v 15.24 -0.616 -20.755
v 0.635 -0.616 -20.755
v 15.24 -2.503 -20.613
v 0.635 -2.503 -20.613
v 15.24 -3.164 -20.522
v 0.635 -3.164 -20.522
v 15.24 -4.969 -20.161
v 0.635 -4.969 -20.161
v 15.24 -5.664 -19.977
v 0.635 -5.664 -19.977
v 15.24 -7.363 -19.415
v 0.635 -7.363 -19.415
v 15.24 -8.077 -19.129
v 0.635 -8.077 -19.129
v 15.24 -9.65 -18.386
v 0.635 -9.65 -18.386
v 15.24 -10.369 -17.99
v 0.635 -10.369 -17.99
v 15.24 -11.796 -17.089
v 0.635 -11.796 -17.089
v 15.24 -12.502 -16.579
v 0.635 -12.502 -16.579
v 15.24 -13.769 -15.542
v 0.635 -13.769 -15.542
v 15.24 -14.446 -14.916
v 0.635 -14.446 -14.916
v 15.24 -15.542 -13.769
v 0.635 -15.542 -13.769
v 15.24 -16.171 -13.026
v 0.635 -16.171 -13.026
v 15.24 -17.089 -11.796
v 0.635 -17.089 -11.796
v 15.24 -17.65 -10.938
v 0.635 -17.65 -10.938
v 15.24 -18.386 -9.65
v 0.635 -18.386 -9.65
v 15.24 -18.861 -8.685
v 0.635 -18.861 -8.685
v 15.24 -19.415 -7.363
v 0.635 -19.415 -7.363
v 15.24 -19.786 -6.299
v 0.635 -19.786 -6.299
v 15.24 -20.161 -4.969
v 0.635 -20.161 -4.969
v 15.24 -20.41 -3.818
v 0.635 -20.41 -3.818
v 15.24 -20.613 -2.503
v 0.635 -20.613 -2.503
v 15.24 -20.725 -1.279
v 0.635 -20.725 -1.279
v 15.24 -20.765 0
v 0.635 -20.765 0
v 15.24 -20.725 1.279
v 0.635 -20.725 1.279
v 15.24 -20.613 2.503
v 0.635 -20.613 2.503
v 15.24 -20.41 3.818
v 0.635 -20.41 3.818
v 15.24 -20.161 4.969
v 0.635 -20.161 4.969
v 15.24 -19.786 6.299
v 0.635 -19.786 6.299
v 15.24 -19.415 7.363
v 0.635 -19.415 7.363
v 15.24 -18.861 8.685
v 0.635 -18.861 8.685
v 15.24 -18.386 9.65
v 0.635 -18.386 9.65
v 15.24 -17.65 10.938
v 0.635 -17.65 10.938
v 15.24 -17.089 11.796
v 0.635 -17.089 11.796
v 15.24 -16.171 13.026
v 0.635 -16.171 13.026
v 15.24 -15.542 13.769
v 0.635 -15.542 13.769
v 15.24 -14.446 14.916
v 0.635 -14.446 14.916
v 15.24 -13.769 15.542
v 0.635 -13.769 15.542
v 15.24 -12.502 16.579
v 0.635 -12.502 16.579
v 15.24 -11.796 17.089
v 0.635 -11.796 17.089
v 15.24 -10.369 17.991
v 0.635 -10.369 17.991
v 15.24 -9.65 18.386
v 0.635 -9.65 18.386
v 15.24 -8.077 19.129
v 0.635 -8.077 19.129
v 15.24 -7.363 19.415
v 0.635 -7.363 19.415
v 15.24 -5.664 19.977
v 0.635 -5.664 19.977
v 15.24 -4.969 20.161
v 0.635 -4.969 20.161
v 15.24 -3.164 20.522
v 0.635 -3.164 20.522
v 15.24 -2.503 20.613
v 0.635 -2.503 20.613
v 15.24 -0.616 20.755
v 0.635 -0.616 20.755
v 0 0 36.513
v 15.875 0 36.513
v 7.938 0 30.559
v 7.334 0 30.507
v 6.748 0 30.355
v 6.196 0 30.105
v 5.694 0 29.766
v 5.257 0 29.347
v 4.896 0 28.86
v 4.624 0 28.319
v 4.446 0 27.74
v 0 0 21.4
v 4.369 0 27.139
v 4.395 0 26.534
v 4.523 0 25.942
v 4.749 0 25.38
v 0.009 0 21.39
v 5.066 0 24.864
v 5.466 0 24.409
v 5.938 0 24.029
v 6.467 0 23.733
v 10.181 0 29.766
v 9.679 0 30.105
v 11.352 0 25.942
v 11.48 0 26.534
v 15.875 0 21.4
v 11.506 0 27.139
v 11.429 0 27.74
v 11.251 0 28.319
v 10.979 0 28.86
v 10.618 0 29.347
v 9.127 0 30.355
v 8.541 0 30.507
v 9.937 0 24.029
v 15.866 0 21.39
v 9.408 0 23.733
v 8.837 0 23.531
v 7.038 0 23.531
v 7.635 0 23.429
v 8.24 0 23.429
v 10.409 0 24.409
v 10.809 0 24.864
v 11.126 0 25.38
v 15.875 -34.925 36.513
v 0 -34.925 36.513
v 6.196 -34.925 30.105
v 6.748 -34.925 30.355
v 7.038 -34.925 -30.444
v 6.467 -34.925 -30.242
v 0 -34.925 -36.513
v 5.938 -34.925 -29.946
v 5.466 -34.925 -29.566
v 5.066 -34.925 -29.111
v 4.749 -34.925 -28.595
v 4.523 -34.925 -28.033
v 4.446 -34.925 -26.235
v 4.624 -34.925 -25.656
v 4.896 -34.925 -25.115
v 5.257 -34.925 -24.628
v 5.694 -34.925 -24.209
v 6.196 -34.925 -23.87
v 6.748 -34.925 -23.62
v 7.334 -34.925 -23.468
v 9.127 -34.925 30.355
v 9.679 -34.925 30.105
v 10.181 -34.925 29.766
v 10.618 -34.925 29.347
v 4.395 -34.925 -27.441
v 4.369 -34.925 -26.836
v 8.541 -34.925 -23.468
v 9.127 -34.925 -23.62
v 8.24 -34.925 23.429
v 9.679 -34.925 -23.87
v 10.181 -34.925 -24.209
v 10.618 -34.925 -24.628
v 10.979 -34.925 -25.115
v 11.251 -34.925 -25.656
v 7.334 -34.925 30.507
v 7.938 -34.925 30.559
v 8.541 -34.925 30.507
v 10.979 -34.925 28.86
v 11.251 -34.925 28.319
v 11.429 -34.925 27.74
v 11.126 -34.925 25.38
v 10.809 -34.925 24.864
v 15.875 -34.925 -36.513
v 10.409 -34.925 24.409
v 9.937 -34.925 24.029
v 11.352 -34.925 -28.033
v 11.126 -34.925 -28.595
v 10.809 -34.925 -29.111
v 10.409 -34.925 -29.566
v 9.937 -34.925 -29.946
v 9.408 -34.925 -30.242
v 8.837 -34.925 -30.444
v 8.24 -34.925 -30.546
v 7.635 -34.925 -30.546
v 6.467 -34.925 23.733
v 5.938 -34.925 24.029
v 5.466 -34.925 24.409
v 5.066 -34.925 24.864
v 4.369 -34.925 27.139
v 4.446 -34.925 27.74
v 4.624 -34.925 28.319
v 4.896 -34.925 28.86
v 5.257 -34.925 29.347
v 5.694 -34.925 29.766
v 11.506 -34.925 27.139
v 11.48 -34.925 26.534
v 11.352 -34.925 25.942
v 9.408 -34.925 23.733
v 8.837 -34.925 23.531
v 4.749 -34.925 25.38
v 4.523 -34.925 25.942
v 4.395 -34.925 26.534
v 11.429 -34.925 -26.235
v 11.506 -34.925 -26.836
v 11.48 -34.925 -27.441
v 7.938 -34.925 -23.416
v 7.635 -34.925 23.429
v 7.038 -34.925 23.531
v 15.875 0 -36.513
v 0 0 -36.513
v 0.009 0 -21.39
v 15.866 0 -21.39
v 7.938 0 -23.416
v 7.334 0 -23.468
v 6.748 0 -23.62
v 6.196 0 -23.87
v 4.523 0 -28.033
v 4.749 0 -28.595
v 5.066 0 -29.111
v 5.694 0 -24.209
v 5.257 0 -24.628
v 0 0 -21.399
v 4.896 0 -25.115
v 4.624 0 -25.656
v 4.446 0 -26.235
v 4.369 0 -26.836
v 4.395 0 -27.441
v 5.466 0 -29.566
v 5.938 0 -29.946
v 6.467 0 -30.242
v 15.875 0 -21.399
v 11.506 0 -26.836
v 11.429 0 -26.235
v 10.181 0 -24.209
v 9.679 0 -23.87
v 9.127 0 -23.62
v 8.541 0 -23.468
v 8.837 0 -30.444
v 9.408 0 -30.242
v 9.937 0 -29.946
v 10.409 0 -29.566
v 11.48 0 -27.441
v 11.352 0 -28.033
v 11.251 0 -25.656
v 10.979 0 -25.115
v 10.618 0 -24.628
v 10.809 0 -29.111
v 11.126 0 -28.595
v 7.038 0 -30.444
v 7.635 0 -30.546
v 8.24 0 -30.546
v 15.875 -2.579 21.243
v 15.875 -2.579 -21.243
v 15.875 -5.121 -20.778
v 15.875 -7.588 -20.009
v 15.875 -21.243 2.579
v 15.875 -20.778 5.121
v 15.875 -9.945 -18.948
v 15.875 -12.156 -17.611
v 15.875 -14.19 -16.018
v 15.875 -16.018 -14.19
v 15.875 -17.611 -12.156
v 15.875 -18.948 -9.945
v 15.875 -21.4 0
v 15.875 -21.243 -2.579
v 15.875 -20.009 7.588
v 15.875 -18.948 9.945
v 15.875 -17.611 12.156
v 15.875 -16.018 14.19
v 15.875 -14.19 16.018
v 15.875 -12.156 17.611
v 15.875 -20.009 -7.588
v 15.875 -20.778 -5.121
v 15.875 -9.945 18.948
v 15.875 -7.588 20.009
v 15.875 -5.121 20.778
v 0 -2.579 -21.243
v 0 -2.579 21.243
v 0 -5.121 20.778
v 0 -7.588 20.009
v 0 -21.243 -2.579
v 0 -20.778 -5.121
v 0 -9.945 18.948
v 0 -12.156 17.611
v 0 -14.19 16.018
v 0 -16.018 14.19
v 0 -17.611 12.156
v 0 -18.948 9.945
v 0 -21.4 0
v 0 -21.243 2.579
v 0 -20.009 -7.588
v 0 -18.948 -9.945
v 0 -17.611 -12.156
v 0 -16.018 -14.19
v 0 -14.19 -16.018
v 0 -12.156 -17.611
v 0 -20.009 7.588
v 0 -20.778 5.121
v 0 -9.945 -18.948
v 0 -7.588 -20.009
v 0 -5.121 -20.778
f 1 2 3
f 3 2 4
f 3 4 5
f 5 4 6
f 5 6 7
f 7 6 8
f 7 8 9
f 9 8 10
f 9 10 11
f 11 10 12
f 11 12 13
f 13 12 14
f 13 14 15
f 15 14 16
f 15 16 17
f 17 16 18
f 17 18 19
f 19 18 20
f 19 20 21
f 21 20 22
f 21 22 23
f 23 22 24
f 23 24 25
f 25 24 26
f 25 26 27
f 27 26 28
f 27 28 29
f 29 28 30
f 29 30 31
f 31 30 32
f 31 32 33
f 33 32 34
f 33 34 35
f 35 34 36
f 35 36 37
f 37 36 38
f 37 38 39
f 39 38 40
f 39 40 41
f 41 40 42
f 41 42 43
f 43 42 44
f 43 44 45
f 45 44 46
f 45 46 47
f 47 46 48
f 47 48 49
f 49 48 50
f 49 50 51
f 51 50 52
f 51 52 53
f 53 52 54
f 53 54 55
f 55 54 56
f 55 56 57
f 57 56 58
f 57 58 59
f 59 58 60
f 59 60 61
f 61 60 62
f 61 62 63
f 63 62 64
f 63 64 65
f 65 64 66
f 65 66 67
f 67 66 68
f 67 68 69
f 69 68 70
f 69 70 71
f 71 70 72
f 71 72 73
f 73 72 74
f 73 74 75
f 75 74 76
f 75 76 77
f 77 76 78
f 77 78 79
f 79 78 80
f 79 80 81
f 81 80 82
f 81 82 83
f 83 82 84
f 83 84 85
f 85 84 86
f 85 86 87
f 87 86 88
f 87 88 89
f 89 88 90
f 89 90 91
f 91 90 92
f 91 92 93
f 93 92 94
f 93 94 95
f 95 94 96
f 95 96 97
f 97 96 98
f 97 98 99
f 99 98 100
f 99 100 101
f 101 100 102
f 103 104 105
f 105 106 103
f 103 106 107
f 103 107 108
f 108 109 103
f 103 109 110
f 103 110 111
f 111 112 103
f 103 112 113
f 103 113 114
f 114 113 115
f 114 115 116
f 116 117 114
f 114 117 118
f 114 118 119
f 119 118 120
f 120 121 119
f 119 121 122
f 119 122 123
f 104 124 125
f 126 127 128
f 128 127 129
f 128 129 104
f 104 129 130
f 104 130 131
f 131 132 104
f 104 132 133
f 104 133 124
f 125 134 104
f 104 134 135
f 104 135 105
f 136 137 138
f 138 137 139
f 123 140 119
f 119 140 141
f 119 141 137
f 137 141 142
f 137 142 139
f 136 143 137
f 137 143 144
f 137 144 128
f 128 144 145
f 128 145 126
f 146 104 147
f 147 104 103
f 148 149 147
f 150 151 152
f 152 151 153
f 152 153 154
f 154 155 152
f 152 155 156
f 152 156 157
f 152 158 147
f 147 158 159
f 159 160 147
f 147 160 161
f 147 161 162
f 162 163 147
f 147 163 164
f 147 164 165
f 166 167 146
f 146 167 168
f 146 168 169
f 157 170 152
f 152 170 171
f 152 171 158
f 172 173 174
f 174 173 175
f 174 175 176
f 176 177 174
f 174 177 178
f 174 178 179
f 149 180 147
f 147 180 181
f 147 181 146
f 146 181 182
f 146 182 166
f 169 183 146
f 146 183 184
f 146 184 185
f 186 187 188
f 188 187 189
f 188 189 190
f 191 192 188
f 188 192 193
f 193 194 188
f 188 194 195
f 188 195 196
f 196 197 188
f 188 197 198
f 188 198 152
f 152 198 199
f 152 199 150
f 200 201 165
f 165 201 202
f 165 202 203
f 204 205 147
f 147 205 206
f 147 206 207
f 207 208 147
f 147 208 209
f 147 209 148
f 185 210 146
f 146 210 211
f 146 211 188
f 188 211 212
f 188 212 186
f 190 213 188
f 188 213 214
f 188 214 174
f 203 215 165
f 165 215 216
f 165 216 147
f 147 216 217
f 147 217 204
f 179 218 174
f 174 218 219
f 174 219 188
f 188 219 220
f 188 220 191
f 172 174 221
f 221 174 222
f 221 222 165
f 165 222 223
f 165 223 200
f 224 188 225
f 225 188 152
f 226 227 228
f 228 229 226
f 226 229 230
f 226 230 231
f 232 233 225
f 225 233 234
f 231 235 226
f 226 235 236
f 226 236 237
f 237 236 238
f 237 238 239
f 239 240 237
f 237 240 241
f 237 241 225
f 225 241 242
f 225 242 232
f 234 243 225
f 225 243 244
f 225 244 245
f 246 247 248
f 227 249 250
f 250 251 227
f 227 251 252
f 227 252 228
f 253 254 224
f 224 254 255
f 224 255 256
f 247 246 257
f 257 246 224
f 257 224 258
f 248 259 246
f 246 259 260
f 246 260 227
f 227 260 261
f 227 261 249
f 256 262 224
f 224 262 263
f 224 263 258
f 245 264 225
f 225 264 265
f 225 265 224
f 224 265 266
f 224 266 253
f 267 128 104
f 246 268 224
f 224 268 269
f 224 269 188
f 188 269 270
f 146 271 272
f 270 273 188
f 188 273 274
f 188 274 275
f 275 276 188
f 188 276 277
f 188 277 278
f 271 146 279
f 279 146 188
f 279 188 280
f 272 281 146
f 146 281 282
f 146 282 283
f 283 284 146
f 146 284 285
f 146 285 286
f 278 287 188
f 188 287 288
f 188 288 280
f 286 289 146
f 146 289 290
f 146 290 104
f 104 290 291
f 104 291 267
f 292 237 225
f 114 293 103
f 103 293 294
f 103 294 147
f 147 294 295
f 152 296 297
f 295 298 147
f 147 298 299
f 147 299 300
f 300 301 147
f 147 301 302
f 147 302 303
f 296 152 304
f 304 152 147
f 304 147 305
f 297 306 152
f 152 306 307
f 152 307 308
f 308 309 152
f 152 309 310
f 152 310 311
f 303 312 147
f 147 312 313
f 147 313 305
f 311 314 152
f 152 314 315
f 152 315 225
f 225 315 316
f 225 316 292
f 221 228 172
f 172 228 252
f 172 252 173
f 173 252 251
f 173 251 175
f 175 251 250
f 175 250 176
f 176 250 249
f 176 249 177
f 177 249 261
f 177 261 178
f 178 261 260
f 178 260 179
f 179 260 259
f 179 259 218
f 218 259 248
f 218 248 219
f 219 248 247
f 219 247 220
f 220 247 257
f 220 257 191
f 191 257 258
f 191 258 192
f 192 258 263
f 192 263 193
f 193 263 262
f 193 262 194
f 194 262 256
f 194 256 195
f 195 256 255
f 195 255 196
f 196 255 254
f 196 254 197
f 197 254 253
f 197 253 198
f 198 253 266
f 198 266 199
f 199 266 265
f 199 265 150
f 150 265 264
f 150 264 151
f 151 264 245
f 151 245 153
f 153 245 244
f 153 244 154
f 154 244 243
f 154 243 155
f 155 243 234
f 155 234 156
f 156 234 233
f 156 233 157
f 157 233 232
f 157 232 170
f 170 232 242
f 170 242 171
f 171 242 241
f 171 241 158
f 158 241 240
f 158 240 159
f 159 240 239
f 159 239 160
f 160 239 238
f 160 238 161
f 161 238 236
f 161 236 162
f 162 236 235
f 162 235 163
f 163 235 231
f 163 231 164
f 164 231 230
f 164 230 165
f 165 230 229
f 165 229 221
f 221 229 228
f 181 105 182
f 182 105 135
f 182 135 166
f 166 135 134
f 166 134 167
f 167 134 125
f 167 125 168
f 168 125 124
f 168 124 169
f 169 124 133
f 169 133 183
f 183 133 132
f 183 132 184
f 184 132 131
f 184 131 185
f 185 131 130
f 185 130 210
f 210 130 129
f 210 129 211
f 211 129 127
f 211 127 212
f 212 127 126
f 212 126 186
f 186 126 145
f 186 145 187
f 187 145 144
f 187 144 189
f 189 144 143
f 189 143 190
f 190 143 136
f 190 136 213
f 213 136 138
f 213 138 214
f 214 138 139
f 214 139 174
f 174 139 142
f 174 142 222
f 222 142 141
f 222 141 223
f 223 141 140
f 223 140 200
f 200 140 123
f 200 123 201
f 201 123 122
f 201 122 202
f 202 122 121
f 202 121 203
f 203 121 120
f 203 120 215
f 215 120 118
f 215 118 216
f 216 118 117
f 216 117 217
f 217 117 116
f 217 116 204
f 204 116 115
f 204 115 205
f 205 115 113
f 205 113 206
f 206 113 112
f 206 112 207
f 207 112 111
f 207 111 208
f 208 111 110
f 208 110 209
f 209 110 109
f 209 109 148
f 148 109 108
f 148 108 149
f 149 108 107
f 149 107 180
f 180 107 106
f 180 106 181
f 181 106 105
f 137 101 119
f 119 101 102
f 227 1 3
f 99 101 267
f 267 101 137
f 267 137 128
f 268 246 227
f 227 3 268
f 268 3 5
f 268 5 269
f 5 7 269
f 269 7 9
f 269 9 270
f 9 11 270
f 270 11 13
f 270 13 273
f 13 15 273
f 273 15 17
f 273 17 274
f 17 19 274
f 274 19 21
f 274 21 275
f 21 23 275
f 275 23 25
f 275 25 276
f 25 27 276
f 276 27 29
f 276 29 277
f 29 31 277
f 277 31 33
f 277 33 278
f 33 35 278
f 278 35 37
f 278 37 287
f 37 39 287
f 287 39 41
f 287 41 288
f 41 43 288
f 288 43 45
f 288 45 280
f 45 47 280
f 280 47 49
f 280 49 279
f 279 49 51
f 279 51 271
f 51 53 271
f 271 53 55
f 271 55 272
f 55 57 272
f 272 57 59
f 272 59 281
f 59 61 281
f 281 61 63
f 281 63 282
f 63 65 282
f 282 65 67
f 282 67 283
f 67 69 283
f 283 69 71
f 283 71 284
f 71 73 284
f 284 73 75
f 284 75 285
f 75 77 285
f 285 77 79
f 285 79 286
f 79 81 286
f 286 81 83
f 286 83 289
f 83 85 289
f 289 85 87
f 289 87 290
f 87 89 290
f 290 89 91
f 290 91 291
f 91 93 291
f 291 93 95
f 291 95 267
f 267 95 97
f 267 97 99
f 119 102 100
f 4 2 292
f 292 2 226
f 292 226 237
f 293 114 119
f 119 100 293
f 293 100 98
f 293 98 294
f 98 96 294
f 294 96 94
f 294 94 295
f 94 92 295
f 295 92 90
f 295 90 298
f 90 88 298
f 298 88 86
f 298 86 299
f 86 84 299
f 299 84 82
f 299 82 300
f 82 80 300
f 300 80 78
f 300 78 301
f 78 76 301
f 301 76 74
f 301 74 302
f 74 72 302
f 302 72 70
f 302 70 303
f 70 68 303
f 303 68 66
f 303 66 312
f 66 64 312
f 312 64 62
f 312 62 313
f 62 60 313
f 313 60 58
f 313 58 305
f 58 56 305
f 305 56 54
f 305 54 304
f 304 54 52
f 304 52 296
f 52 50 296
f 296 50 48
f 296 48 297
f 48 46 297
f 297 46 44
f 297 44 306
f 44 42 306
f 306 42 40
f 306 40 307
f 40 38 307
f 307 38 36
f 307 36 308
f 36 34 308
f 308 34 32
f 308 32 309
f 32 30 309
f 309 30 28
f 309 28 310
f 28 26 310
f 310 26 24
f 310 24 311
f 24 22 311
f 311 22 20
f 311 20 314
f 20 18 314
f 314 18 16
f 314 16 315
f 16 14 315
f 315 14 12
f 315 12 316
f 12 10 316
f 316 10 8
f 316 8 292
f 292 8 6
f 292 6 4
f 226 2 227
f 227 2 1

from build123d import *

# Parameters (mm, degrees)
BOSS_EXTRUDE1_DEPTH                           = 15.875
BOSS_EXTRUDE2_DEPTH                           = 15.875
CBORE_FOR_1_4_SOCKET_HEAD_CAP_SCREW1_AT_COUNT = 2
CBORE_FOR_1_4_SOCKET_HEAD_CAP_SCREW1_AT_PITCH = 53.975
MOVE_FACE1_BY                                 = 0.127
MOVE_FACE1_2_BY                               = 0.127
MOVE_START                                    = 28.575
MOVE_FACE2_OUTLINE_W                          = 15.875
MOVE_FACE2_OUTLINE_H                          = 73.025
MOVE_FACE2_OUTLINE_R                          = 5.55625
MOVE_FACE2_DEPTH                              = 6.35
MOVE_START_2                                  = 22.225
MOVE_FACE2_2_OUTLINE_R                        = 5.55625
MOVE_FACE2_2_OUTLINE_R_2                      = 3.57124
MOVE_FACE2_2_DEPTH                            = 6.35


with BuildPart() as part:
    # Sketch1 → Boss-Extrude1 (new body)
    with BuildSketch(Plane(origin=(0, 0, 0), x_dir=(0, 0, -1), z_dir=(1, 0, 0))):
        with BuildLine():
            Line((36.5125, 0), (20.6375, 0))
            ThreePointArc((20.6375, 0), (0, -20.6375), (-20.6375, 0))
            Line((-20.6375, 0), (-36.5125, 0))
            Line((-36.5125, 0), (-36.5125, -34.925))
            Line((-36.5125, -34.925), (36.5125, -34.925))
            Line((36.5125, -34.925), (36.5125, 0))
        make_face()
    extrude(amount=BOSS_EXTRUDE1_DEPTH)


with BuildPart() as body_2:
    # Sketch1<3> → Boss-Extrude2 (new body)
    with BuildSketch(Plane(origin=(0, 0, 0), x_dir=(0, 0, -1), z_dir=(1, 0, 0))):
        with BuildLine():
            ThreePointArc((-20.6375, 0), (0, 20.6375), (20.6375, 0))
            Line((20.6375, 0), (36.5125, 0))
            Line((36.5125, 0), (36.5125, 34.925))
            Line((36.5125, 34.925), (-36.5125, 34.925))
            Line((-36.5125, 34.925), (-36.5125, 0))
            Line((-36.5125, 0), (-20.6375, 0))
        make_face()
    extrude(amount=BOSS_EXTRUDE2_DEPTH)


with BuildPart() as cbore_for_1_4_socket_head_cap_screw1_tool:
    # Sketch4 → CBORE for 1/4 Socket Head Cap Screw1 (revolve)
    with BuildSketch(Plane(origin=(7.9375, 34.925, 26.9875), x_dir=(0, 0, 1), z_dir=(1, 0, 0))):
        Polygon((0, 0), (0, 69.85), (3.57124, 69.85), (3.57124, 6.35), (5.55625, 6.35), (5.55625, 0.635), (6.19125, 0), align=None)
    cbore_for_1_4_socket_head_cap_screw1 = revolve(axis=Axis((7.9375, 41.275, 26.9875), (0, -1, 0)))


with BuildPart() as part_1:
    add(part.part)

    # CBORE for 1/4 Socket Head Cap Screw1: cut by cbore_for_1_4_socket_head_cap_screw1_tool
    add(cbore_for_1_4_socket_head_cap_screw1_tool.part, mode=Mode.SUBTRACT)


with BuildPart() as body_2_1:
    add(body_2.part)

    # CBORE for 1/4 Socket Head Cap Screw1: cut by cbore_for_1_4_socket_head_cap_screw1_tool
    add(cbore_for_1_4_socket_head_cap_screw1_tool.part, mode=Mode.SUBTRACT)


with BuildPart() as cbore_for_1_4_socket_head_cap_screw1_at_tool:
    # CBORE for 1/4 Socket Head Cap Screw1 at: CBORE for 1/4 Socket Head Cap Screw1 ×2
    with Locations(*[(0, 0, -i * CBORE_FOR_1_4_SOCKET_HEAD_CAP_SCREW1_AT_PITCH) for i in range(1, CBORE_FOR_1_4_SOCKET_HEAD_CAP_SCREW1_AT_COUNT)]):
        add(cbore_for_1_4_socket_head_cap_screw1)


with BuildPart() as part_2:
    add(part_1.part)

    # CBORE for 1/4 Socket Head Cap Screw1 at: cut by cbore_for_1_4_socket_head_cap_screw1_at_tool
    add(cbore_for_1_4_socket_head_cap_screw1_at_tool.part, mode=Mode.SUBTRACT)

    # Move Face1 2: a curved face moved inward by 0.127
    add(Solid.thicken(part_2.faces().sort_by_distance((7.9375, -20.6375, 0))[0], -MOVE_FACE1_2_BY), mode=Mode.SUBTRACT)

    # Chamfer1
    # the kernel refuses this chamfer: 0.635 mm, written as the material it takes off along each edge
    with BuildSketch(Plane(origin=(0, 0, 0), x_dir=(0, 0.07868977926472538, -0.9968991516895122), z_dir=(0, 0.9968991516895122, 0.07868977926472538))) as chamfer1_piece_1:
        with BuildLine():
            Line((21.417460512, 0.017960512), (20.746539488, -0.652960512))
            Line((20.746539488, -0.652960512), (20.733839488, -0.652960512))
            ThreePointArc((20.733839488, -0.652960512), (20.7518, -0.326480256), (20.7518, 0))
            Line((20.7518, 0), (20.7645, 0.0127))
            ThreePointArc((20.7645, 0.0127), (21.090980256, 0.0127), (21.417460512, 0.030660512))
            Line((21.417460512, 0.030660512), (21.417460512, 0.017960512))
        make_face()
    revolve(axis=Axis((0, 0, 0), (-1, 0, 0)), revolution_arc=189.026516368, mode=Mode.SUBTRACT)
    with BuildSketch(Plane(origin=(-1.610111621, 0, -20.7645), x_dir=(0, 0, -1), z_dir=(1, 0, 0))) as chamfer1_piece_2:
        with BuildLine():
            Line((0.643801601, 0.017692029), (-0.027368853, -0.633849299))
            Line((-0.027368853, -0.633849299), (-0.040063261, -0.633472445))
            ThreePointArc((-0.040063261, -0.633472445), (-0.015119867, -0.316902726), (-0.0127, 0))
            Line((-0.0127, 0), (0, 0.0127))
            ThreePointArc((0, 0.0127), (0.3219008, 0.0127), (0.643801601, 0.030392029))
            Line((0.643801601, 0.030392029), (0.643801601, 0.017692029))
        make_face()
    extrude(amount=19.095223242, mode=Mode.SUBTRACT)
    with BuildSketch(Plane(origin=(-1.610111621, 0, 20.7645), x_dir=(0, -0.9998899044534173, -0.01483842889716635), z_dir=(1, 0, 0))) as chamfer1_piece_3:
        with BuildLine():
            Line((0.634185626, 0.017960512), (-0.027243086, -0.643468199))
            Line((-0.027243086, -0.643468199), (-0.039941687, -0.643279751))
            ThreePointArc((-0.039941687, -0.643279751), (-0.017475104, -0.321676913), (-0.012698602, 0.000188448))
            Line((-0.012698602, 0.000188448), (0.000188448, 0.012698602))
            ThreePointArc((0.000188448, 0.012698602), (0.317092192, 0.010415864), (0.633997178, 0.030659114))
            Line((0.633997178, 0.030659114), (0.634185626, 0.017960512))
        make_face()
    extrude(amount=19.095223242, mode=Mode.SUBTRACT)
    with BuildSketch(Plane(origin=(15.875, 0, 0), x_dir=(0, 0.0786897792647254, -0.9968991516895122), z_dir=(0, 0.9968991516895122, 0.0786897792647254))) as chamfer1_piece_4:
        with BuildLine():
            Line((20.746539488, 0.652960512), (21.417460512, -0.017960512))
            Line((21.417460512, -0.017960512), (21.417460512, -0.030660512))
            ThreePointArc((21.417460512, -0.030660512), (21.090980256, -0.0127), (20.7645, -0.0127))
            Line((20.7645, -0.0127), (20.7518, 0))
            ThreePointArc((20.7518, 0), (20.7518, 0.326480256), (20.733839488, 0.652960512))
            Line((20.733839488, 0.652960512), (20.746539488, 0.652960512))
        make_face()
    revolve(axis=Axis((15.875, 0, 0), (-1, 0, 0)), revolution_arc=189.026516368, mode=Mode.SUBTRACT)


with BuildPart() as body_2_2:
    add(body_2_1.part)

    # CBORE for 1/4 Socket Head Cap Screw1 at: cut by cbore_for_1_4_socket_head_cap_screw1_at_tool
    add(cbore_for_1_4_socket_head_cap_screw1_at_tool.part, mode=Mode.SUBTRACT)

    # Move Face1: a curved face moved inward by 0.127
    add(Solid.thicken(body_2_2.faces().sort_by_distance((7.9375, 20.6375, 0))[0], -MOVE_FACE1_BY), mode=Mode.SUBTRACT)

    # Move Face2: read off the stored shape, not the designer's step
    # Move Face2 outline → Move Face2 (cut)
    with BuildSketch(Plane(origin=(0, 0, 0), x_dir=(1, 0, 0), z_dir=(0, 1, 0)).offset(MOVE_START)):
        with Locations((7.9375, 0)):
            Rectangle(MOVE_FACE2_OUTLINE_W, MOVE_FACE2_OUTLINE_H)
        with Locations((7.9375, -26.9875)):
            Circle(MOVE_FACE2_OUTLINE_R, mode=Mode.SUBTRACT)
        with Locations((7.9375, 26.9875)):
            Circle(MOVE_FACE2_OUTLINE_R, mode=Mode.SUBTRACT)
    extrude(amount=MOVE_FACE2_DEPTH, mode=Mode.SUBTRACT)

    # Move Face2 2 outline → Move Face2 2 (cut)
    # profile 1 of 2: a face of its own
    with BuildSketch(Plane(origin=(0, 0, 0), x_dir=(1, 0, 0), z_dir=(0, 1, 0)).offset(MOVE_START_2)):
        with Locations((7.9375, 26.9875)):
            Circle(MOVE_FACE2_2_OUTLINE_R)
        with Locations((7.9375, 26.9875)):
            Circle(MOVE_FACE2_2_OUTLINE_R_2, mode=Mode.SUBTRACT)
    # profile 2 of 2: a face of its own
    with BuildSketch(Plane(origin=(0, 0, 0), x_dir=(1, 0, 0), z_dir=(0, 1, 0)).offset(MOVE_START_2)):
        with Locations((7.9375, -26.9875)):
            Circle(MOVE_FACE2_2_OUTLINE_R)
        with Locations((7.9375, -26.9875)):
            Circle(MOVE_FACE2_2_OUTLINE_R_2, mode=Mode.SUBTRACT)
    extrude(amount=MOVE_FACE2_2_DEPTH, mode=Mode.SUBTRACT)

    # Move Face2 3: loft between two sections, ruled curve by curve
    move_face2_3_from = [
        Edge.make_three_point_arc((7.9375, 27.94, -21.43125), (13.49375, 27.94, -26.9875), (7.9375, 27.94, -32.54375)),
        Edge.make_three_point_arc((7.9375, 27.94, -32.54375), (2.38125, 27.94, -26.9875), (7.9375, 27.94, -21.43125)),
    ]
    move_face2_3_to = [
        Edge.make_three_point_arc((7.9375, 28.575, -20.79625), (14.12875, 28.575, -26.9875), (7.9375, 28.575, -33.17875)),
        Edge.make_three_point_arc((7.9375, 28.575, -33.17875), (1.74625, 28.575, -26.9875), (7.9375, 28.575, -20.79625)),
    ]
    move_face2_3 = Solid(Shell([*[Face.make_surface_from_curves(move_face2_3_from[k], move_face2_3_to[k]) for k in range(2)], Face(Wire(move_face2_3_from)), Face(Wire(move_face2_3_to))]))
    add(move_face2_3, mode=Mode.SUBTRACT)

    # Move Face2 4: loft between two sections, ruled curve by curve
    move_face2_4_from = [
        Edge.make_three_point_arc((7.9375, 27.94, 32.54375), (13.49375, 27.94, 26.9875), (7.9375, 27.94, 21.43125)),
        Edge.make_three_point_arc((7.9375, 27.94, 21.43125), (2.38125, 27.94, 26.9875), (7.9375, 27.94, 32.54375)),
    ]
    move_face2_4_to = [
        Edge.make_three_point_arc((7.9375, 28.575, 33.17875), (14.12875, 28.575, 26.9875), (7.9375, 28.575, 20.79625)),
        Edge.make_three_point_arc((7.9375, 28.575, 20.79625), (1.74625, 28.575, 26.9875), (7.9375, 28.575, 33.17875)),
    ]
    move_face2_4 = Solid(Shell([*[Face.make_surface_from_curves(move_face2_4_from[k], move_face2_4_to[k]) for k in range(2)], Face(Wire(move_face2_4_from)), Face(Wire(move_face2_4_to))]))
    add(move_face2_4, mode=Mode.SUBTRACT)

    # Chamfer2
    # the kernel refuses this chamfer: 0.635 mm, written as the material it takes off along each edge
    with BuildSketch(Plane(origin=(0, 0, 0), x_dir=(0, -0.0786897792647251, 0.9968991516895122), z_dir=(0, -0.9968991516895122, -0.0786897792647251))) as chamfer2_piece_1:
        with BuildLine():
            Line((21.417460512, 0.017960512), (20.746539488, -0.652960512))
            Line((20.746539488, -0.652960512), (20.733839488, -0.652960512))
            ThreePointArc((20.733839488, -0.652960512), (20.7518, -0.326480256), (20.7518, 0))
            Line((20.7518, 0), (20.7645, 0.0127))
            ThreePointArc((20.7645, 0.0127), (21.090980256, 0.0127), (21.417460512, 0.030660512))
            Line((21.417460512, 0.030660512), (21.417460512, 0.017960512))
        make_face()
    revolve(axis=Axis((0, 0, 0), (-1, 0, 0)), revolution_arc=189.026516368, mode=Mode.SUBTRACT)
    with BuildSketch(Plane(origin=(-1.610111621, 0, 20.7645), x_dir=(0, 0, 1), z_dir=(1, 0, 0))) as chamfer2_piece_2:
        with BuildLine():
            Line((0.643801601, 0.017692029), (-0.027368853, -0.633849299))
            Line((-0.027368853, -0.633849299), (-0.040063261, -0.633472445))
            ThreePointArc((-0.040063261, -0.633472445), (-0.015119867, -0.316902726), (-0.0127, 0))
            Line((-0.0127, 0), (0, 0.0127))
            ThreePointArc((0, 0.0127), (0.3219008, 0.0127), (0.643801601, 0.030392029))
            Line((0.643801601, 0.030392029), (0.643801601, 0.017692029))
        make_face()
    extrude(amount=19.095223242, mode=Mode.SUBTRACT)
    with BuildSketch(Plane(origin=(-1.610111621, 0, -20.7645), x_dir=(0, 0.9998899044534173, 0.014838428897166573), z_dir=(1, 0, 0))) as chamfer2_piece_3:
        with BuildLine():
            Line((0.634185626, 0.017960512), (-0.027243086, -0.643468199))
            Line((-0.027243086, -0.643468199), (-0.039941687, -0.643279751))
            ThreePointArc((-0.039941687, -0.643279751), (-0.017475104, -0.321676913), (-0.012698602, 0.000188448))
            Line((-0.012698602, 0.000188448), (0.000188448, 0.012698602))
            ThreePointArc((0.000188448, 0.012698602), (0.317092192, 0.010415864), (0.633997178, 0.030659114))
            Line((0.633997178, 0.030659114), (0.634185626, 0.017960512))
        make_face()
    extrude(amount=19.095223242, mode=Mode.SUBTRACT)
    with BuildSketch(Plane(origin=(15.875, 0, 0), x_dir=(0, -0.07868977926472513, 0.9968991516895122), z_dir=(0, -0.9968991516895122, -0.07868977926472513))) as chamfer2_piece_4:
        with BuildLine():
            Line((20.746539488, 0.652960512), (21.417460512, -0.017960512))
            Line((21.417460512, -0.017960512), (21.417460512, -0.030660512))
            ThreePointArc((21.417460512, -0.030660512), (21.090980256, -0.0127), (20.7645, -0.0127))
            Line((20.7645, -0.0127), (20.7518, 0))
            ThreePointArc((20.7518, 0), (20.7518, 0.326480256), (20.733839488, 0.652960512))
            Line((20.733839488, 0.652960512), (20.746539488, 0.652960512))
        make_face()
    revolve(axis=Axis((15.875, 0, 0), (-1, 0, 0)), revolution_arc=189.026516368, mode=Mode.SUBTRACT)


solid = part_2.part
